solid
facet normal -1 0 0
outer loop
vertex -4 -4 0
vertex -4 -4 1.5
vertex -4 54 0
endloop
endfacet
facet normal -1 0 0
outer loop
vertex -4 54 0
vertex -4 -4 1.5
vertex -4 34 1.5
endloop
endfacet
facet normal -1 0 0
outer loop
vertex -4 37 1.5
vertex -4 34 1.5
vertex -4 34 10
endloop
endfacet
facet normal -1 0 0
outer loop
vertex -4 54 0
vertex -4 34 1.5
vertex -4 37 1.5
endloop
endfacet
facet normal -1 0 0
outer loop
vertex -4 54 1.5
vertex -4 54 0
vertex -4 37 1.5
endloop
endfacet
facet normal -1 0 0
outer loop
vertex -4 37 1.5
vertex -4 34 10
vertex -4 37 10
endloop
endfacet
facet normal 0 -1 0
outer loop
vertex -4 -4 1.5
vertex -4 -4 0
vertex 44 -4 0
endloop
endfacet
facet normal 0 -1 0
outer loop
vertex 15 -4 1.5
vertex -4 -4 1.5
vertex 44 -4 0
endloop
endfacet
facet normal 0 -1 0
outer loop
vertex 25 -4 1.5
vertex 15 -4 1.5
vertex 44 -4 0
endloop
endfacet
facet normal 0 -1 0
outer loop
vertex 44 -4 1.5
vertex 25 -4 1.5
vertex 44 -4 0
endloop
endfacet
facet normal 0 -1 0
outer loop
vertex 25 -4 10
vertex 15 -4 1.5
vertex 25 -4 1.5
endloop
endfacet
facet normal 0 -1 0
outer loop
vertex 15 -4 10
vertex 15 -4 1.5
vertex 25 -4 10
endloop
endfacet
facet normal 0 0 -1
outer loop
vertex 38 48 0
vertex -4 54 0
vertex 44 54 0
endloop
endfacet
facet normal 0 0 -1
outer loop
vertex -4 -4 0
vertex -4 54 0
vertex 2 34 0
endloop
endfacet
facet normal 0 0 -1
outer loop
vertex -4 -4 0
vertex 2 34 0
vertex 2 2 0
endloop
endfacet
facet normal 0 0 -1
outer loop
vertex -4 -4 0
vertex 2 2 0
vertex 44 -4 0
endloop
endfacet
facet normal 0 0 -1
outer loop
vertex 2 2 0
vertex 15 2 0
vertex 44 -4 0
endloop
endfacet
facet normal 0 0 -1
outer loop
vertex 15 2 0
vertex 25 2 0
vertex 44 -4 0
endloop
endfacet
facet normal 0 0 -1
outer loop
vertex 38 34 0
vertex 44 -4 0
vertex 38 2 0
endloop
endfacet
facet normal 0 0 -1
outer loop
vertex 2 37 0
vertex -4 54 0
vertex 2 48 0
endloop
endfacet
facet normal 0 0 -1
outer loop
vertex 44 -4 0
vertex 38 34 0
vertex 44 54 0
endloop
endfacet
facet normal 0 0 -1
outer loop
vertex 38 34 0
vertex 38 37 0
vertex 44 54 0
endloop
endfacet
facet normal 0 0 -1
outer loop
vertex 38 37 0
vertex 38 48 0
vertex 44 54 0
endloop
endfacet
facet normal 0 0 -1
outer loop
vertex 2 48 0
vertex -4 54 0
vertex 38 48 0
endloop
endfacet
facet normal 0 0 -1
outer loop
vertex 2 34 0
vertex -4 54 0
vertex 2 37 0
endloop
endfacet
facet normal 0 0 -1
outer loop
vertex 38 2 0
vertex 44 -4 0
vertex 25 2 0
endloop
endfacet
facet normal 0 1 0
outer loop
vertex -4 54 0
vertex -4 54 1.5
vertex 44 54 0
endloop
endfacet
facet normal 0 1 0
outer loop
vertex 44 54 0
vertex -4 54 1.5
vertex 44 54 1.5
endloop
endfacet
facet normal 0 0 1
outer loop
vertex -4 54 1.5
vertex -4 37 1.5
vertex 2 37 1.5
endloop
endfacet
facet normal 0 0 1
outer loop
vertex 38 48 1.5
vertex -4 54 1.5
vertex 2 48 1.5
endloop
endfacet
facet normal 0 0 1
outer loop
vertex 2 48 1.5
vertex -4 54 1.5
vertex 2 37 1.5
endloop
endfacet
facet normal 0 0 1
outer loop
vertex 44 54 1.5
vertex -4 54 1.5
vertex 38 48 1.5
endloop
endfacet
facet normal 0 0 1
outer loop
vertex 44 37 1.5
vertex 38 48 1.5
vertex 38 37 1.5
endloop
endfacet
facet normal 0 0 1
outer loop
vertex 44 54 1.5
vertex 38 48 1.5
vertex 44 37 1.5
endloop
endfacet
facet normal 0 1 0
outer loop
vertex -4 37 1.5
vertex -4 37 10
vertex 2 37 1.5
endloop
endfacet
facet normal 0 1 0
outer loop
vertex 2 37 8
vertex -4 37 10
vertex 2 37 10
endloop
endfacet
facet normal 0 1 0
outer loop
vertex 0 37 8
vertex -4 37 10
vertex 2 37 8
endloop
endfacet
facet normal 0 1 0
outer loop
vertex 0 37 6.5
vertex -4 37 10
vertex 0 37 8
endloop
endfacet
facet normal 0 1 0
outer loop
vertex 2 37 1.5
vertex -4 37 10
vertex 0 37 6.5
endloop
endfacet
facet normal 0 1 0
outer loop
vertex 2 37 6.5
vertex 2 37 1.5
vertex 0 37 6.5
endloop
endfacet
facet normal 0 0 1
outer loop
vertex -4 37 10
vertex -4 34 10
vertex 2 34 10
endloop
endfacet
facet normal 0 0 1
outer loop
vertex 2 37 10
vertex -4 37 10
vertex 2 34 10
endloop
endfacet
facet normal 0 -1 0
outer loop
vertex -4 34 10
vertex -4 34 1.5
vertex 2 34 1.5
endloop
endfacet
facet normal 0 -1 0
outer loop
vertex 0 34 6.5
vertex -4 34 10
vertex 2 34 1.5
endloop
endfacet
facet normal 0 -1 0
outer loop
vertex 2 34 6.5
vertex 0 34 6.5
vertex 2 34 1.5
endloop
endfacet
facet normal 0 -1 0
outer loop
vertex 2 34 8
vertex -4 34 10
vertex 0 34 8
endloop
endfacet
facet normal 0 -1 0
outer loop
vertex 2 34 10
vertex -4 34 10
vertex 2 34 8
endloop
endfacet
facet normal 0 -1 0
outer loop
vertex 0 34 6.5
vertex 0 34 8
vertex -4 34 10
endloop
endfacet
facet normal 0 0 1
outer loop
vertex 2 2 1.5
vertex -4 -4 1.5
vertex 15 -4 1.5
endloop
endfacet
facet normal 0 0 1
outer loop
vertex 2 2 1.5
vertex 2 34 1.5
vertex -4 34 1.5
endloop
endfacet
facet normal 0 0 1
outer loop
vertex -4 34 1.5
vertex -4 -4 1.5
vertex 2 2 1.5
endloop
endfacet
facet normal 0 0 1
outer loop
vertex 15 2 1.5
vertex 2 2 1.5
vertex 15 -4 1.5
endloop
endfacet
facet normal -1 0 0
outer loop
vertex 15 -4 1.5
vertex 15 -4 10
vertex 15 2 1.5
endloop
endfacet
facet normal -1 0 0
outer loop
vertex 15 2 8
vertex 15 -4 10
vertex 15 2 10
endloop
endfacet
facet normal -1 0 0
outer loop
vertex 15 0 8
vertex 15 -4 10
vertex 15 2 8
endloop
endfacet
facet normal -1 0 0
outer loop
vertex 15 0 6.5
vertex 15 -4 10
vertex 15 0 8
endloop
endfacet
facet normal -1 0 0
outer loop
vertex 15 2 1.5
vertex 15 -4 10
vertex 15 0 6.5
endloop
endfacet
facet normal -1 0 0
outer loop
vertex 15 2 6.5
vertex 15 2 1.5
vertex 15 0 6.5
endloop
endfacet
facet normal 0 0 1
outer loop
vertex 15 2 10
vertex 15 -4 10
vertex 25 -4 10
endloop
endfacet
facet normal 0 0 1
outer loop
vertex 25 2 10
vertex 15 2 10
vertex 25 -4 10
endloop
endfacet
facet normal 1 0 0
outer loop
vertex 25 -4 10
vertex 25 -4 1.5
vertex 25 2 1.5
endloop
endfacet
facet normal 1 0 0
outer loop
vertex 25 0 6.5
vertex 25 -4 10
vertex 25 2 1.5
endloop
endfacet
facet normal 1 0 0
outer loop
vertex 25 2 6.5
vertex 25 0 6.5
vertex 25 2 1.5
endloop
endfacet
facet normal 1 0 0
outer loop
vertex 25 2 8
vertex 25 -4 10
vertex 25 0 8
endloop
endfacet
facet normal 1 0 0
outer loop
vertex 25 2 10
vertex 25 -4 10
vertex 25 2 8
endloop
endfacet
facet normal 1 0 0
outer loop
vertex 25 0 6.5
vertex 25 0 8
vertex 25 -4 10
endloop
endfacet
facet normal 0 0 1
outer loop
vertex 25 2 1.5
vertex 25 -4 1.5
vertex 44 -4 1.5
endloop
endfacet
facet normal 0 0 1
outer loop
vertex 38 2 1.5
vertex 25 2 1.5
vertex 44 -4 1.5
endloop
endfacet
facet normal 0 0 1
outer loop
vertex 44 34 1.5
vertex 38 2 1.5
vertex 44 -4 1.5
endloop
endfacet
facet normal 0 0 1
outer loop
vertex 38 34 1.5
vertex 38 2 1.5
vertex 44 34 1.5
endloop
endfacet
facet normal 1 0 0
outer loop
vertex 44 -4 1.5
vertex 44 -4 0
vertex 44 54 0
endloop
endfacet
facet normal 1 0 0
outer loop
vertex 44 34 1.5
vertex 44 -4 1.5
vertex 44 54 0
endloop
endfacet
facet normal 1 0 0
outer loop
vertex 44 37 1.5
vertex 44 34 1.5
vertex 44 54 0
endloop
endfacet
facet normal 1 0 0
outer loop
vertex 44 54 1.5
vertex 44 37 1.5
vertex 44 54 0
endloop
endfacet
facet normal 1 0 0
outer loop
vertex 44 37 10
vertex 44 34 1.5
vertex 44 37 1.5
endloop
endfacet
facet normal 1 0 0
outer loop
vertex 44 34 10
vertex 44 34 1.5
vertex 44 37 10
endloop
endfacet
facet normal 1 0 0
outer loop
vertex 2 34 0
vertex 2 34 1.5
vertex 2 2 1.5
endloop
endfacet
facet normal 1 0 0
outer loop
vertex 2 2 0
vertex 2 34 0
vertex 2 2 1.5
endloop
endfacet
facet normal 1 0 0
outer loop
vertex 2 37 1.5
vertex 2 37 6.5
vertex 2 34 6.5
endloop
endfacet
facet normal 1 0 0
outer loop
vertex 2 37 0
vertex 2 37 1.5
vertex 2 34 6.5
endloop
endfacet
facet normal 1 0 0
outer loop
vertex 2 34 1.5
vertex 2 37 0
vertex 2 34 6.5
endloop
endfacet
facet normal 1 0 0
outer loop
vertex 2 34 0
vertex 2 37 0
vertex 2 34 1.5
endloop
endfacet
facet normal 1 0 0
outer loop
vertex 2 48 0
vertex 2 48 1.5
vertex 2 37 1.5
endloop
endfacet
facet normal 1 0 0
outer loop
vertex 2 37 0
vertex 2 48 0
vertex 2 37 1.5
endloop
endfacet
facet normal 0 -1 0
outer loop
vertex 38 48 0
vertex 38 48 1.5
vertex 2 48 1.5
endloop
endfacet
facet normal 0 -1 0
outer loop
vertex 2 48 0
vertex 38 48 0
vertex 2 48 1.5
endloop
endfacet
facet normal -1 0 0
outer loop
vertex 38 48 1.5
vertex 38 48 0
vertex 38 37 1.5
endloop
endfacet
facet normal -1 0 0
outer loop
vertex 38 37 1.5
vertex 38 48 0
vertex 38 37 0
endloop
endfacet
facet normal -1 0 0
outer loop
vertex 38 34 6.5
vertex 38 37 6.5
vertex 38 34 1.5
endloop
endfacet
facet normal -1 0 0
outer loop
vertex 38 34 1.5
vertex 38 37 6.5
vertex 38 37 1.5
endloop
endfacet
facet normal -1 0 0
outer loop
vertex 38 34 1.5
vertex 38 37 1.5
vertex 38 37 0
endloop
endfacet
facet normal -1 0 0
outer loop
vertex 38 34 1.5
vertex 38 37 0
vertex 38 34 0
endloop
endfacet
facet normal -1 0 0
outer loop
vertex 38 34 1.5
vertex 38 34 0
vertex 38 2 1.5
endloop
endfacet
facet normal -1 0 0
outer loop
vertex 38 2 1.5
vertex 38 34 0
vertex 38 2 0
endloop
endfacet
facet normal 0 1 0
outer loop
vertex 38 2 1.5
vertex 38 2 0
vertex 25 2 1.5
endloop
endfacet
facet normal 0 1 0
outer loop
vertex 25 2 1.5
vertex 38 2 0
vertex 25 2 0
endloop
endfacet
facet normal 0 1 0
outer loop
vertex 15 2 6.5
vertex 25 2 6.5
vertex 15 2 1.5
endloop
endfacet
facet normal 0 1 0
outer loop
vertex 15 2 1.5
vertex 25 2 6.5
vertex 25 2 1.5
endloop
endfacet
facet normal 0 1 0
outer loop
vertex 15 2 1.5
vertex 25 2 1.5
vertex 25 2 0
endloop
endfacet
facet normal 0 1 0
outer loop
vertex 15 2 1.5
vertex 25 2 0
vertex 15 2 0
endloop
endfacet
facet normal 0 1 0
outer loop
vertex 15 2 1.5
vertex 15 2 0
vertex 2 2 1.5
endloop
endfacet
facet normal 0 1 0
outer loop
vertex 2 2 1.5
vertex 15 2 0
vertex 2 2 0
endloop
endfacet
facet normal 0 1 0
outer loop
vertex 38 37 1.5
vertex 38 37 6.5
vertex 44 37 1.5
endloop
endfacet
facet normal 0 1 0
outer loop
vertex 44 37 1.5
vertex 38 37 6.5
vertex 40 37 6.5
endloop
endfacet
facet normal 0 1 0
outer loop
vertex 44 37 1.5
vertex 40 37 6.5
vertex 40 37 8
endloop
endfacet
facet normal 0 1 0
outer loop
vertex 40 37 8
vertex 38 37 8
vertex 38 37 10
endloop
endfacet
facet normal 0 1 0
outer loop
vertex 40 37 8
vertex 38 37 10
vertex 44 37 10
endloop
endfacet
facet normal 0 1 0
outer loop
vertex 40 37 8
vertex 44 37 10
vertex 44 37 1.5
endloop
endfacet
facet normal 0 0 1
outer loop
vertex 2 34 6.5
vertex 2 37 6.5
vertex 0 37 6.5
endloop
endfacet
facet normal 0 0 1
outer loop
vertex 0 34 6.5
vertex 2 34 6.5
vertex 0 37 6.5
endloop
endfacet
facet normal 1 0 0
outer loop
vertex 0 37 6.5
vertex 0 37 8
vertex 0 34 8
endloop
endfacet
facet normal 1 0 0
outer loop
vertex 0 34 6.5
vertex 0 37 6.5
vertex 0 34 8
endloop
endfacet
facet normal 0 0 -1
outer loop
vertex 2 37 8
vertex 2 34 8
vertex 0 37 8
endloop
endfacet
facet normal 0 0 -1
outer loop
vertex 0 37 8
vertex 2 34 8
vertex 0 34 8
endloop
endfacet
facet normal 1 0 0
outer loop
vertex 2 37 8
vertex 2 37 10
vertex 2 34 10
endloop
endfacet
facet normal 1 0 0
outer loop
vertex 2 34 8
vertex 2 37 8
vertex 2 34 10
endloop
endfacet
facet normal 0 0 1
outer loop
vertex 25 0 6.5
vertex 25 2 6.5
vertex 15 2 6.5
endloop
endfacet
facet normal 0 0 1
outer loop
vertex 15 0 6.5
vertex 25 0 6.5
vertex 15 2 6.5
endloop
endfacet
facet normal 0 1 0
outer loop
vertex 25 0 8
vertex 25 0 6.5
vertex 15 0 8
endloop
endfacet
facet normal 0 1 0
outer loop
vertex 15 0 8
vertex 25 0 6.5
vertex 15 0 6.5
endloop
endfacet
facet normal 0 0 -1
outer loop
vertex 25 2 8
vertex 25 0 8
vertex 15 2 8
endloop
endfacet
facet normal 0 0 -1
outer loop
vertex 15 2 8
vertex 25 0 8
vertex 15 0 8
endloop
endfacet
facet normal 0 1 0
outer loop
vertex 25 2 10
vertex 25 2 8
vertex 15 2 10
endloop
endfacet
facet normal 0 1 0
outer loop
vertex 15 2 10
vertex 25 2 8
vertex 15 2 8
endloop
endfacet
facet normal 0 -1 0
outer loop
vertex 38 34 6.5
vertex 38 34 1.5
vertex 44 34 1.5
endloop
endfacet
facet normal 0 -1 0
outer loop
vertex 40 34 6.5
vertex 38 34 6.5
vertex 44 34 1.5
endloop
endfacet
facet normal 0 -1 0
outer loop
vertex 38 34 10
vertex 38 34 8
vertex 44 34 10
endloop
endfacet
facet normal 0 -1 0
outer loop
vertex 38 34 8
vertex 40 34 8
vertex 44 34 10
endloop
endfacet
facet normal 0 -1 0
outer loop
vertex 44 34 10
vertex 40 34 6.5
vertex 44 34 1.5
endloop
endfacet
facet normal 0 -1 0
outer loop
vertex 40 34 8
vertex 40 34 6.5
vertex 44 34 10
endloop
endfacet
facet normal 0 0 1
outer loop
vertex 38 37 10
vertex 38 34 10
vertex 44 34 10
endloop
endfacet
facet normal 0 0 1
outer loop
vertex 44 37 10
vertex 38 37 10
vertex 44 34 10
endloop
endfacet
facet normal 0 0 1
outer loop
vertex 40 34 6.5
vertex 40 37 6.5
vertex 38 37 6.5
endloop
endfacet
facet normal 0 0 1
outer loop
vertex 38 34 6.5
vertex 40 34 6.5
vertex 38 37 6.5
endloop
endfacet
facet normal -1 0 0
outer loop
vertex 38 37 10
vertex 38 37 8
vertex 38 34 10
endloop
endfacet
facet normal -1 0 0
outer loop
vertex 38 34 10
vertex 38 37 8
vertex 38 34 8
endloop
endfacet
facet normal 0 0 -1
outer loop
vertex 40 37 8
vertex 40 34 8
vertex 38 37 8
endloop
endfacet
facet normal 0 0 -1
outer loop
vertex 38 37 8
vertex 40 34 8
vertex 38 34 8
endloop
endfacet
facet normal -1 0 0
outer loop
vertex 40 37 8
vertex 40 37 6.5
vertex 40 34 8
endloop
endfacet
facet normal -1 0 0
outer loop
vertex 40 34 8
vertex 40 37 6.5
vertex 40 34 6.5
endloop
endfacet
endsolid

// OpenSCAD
//---------------------------------------------------------------------------
// Simple frame to hold a Microboard format PCB
//---------------------------------------------------------------------------
// 04-Jan-2013 ShaneG
//
//   First version. This is just a simple frame that keeps the board away
//   from any underlying surface - it is not a fully enclosed case.
//---------------------------------------------------------------------------

// Board size
PCB_WIDTH  = 40;
PCB_HEIGHT = 50;
PCB_DEPTH  = 1.5;

// Clip sizes
//
//  There are three clips in total - one at the base and two on each side. They
//  are placed so they provide enough support without interfering with the
//  components mounted on the board. The side clips are CLIP1 and the base clip
//  is CLIP2.
//
//  +-------+
//  |       |
//  []     []
//  []     []
//  |       |
//  |       |
//  |       |
//  +--===--+

CLIP1_SIZE   = 3;
CLIP1_OFFSET = 34;

CLIP2_SIZE   = 10;
CLIP2_OFFSET = 15;

CLIP_HEIGHT  = 10;
CLIP_DEPTH   = 2;
CLIP_WIDTH   = 6;

difference() {
  union() {
    // Create the base plate
    difference() {
      translate(v = [ -(CLIP_WIDTH - CLIP_DEPTH), -(CLIP_WIDTH - CLIP_DEPTH), 0 ]) {
        cube(size = [ PCB_WIDTH + 2 * (CLIP_WIDTH - CLIP_DEPTH), PCB_HEIGHT + 2 * (CLIP_WIDTH - CLIP_DEPTH), PCB_DEPTH ], center = false);
        }
      translate(v = [ CLIP_DEPTH, CLIP_DEPTH, -PCB_DEPTH ]) {
        cube(size = [ PCB_WIDTH - 2 * CLIP_DEPTH, PCB_HEIGHT - 2 * CLIP_DEPTH, PCB_DEPTH * 3 ], center = false);
        }
      }
    // Add the clips
    translate(v = [ -(CLIP_WIDTH - CLIP_DEPTH), CLIP1_OFFSET, 0 ]) {
      cube(size = [ CLIP_WIDTH, CLIP1_SIZE, CLIP_HEIGHT ], center = false);
      }
    translate(v = [ PCB_WIDTH - CLIP_DEPTH, CLIP1_OFFSET, 0 ]) {
      cube(size = [ CLIP_WIDTH, CLIP1_SIZE, CLIP_HEIGHT ], center = false);
      }
    translate(v = [ CLIP2_OFFSET, -(CLIP_WIDTH - CLIP_DEPTH), 0 ]) {
      cube(size = [ CLIP2_SIZE, CLIP_WIDTH, CLIP_HEIGHT ], center = false);
      }
    }
  // Cut out the PCB itself
  translate(v = [ 0, 0, CLIP_HEIGHT - CLIP_DEPTH - PCB_DEPTH ]) {
    cube(size= [ PCB_WIDTH, PCB_HEIGHT, PCB_DEPTH ]);
    }
  }
